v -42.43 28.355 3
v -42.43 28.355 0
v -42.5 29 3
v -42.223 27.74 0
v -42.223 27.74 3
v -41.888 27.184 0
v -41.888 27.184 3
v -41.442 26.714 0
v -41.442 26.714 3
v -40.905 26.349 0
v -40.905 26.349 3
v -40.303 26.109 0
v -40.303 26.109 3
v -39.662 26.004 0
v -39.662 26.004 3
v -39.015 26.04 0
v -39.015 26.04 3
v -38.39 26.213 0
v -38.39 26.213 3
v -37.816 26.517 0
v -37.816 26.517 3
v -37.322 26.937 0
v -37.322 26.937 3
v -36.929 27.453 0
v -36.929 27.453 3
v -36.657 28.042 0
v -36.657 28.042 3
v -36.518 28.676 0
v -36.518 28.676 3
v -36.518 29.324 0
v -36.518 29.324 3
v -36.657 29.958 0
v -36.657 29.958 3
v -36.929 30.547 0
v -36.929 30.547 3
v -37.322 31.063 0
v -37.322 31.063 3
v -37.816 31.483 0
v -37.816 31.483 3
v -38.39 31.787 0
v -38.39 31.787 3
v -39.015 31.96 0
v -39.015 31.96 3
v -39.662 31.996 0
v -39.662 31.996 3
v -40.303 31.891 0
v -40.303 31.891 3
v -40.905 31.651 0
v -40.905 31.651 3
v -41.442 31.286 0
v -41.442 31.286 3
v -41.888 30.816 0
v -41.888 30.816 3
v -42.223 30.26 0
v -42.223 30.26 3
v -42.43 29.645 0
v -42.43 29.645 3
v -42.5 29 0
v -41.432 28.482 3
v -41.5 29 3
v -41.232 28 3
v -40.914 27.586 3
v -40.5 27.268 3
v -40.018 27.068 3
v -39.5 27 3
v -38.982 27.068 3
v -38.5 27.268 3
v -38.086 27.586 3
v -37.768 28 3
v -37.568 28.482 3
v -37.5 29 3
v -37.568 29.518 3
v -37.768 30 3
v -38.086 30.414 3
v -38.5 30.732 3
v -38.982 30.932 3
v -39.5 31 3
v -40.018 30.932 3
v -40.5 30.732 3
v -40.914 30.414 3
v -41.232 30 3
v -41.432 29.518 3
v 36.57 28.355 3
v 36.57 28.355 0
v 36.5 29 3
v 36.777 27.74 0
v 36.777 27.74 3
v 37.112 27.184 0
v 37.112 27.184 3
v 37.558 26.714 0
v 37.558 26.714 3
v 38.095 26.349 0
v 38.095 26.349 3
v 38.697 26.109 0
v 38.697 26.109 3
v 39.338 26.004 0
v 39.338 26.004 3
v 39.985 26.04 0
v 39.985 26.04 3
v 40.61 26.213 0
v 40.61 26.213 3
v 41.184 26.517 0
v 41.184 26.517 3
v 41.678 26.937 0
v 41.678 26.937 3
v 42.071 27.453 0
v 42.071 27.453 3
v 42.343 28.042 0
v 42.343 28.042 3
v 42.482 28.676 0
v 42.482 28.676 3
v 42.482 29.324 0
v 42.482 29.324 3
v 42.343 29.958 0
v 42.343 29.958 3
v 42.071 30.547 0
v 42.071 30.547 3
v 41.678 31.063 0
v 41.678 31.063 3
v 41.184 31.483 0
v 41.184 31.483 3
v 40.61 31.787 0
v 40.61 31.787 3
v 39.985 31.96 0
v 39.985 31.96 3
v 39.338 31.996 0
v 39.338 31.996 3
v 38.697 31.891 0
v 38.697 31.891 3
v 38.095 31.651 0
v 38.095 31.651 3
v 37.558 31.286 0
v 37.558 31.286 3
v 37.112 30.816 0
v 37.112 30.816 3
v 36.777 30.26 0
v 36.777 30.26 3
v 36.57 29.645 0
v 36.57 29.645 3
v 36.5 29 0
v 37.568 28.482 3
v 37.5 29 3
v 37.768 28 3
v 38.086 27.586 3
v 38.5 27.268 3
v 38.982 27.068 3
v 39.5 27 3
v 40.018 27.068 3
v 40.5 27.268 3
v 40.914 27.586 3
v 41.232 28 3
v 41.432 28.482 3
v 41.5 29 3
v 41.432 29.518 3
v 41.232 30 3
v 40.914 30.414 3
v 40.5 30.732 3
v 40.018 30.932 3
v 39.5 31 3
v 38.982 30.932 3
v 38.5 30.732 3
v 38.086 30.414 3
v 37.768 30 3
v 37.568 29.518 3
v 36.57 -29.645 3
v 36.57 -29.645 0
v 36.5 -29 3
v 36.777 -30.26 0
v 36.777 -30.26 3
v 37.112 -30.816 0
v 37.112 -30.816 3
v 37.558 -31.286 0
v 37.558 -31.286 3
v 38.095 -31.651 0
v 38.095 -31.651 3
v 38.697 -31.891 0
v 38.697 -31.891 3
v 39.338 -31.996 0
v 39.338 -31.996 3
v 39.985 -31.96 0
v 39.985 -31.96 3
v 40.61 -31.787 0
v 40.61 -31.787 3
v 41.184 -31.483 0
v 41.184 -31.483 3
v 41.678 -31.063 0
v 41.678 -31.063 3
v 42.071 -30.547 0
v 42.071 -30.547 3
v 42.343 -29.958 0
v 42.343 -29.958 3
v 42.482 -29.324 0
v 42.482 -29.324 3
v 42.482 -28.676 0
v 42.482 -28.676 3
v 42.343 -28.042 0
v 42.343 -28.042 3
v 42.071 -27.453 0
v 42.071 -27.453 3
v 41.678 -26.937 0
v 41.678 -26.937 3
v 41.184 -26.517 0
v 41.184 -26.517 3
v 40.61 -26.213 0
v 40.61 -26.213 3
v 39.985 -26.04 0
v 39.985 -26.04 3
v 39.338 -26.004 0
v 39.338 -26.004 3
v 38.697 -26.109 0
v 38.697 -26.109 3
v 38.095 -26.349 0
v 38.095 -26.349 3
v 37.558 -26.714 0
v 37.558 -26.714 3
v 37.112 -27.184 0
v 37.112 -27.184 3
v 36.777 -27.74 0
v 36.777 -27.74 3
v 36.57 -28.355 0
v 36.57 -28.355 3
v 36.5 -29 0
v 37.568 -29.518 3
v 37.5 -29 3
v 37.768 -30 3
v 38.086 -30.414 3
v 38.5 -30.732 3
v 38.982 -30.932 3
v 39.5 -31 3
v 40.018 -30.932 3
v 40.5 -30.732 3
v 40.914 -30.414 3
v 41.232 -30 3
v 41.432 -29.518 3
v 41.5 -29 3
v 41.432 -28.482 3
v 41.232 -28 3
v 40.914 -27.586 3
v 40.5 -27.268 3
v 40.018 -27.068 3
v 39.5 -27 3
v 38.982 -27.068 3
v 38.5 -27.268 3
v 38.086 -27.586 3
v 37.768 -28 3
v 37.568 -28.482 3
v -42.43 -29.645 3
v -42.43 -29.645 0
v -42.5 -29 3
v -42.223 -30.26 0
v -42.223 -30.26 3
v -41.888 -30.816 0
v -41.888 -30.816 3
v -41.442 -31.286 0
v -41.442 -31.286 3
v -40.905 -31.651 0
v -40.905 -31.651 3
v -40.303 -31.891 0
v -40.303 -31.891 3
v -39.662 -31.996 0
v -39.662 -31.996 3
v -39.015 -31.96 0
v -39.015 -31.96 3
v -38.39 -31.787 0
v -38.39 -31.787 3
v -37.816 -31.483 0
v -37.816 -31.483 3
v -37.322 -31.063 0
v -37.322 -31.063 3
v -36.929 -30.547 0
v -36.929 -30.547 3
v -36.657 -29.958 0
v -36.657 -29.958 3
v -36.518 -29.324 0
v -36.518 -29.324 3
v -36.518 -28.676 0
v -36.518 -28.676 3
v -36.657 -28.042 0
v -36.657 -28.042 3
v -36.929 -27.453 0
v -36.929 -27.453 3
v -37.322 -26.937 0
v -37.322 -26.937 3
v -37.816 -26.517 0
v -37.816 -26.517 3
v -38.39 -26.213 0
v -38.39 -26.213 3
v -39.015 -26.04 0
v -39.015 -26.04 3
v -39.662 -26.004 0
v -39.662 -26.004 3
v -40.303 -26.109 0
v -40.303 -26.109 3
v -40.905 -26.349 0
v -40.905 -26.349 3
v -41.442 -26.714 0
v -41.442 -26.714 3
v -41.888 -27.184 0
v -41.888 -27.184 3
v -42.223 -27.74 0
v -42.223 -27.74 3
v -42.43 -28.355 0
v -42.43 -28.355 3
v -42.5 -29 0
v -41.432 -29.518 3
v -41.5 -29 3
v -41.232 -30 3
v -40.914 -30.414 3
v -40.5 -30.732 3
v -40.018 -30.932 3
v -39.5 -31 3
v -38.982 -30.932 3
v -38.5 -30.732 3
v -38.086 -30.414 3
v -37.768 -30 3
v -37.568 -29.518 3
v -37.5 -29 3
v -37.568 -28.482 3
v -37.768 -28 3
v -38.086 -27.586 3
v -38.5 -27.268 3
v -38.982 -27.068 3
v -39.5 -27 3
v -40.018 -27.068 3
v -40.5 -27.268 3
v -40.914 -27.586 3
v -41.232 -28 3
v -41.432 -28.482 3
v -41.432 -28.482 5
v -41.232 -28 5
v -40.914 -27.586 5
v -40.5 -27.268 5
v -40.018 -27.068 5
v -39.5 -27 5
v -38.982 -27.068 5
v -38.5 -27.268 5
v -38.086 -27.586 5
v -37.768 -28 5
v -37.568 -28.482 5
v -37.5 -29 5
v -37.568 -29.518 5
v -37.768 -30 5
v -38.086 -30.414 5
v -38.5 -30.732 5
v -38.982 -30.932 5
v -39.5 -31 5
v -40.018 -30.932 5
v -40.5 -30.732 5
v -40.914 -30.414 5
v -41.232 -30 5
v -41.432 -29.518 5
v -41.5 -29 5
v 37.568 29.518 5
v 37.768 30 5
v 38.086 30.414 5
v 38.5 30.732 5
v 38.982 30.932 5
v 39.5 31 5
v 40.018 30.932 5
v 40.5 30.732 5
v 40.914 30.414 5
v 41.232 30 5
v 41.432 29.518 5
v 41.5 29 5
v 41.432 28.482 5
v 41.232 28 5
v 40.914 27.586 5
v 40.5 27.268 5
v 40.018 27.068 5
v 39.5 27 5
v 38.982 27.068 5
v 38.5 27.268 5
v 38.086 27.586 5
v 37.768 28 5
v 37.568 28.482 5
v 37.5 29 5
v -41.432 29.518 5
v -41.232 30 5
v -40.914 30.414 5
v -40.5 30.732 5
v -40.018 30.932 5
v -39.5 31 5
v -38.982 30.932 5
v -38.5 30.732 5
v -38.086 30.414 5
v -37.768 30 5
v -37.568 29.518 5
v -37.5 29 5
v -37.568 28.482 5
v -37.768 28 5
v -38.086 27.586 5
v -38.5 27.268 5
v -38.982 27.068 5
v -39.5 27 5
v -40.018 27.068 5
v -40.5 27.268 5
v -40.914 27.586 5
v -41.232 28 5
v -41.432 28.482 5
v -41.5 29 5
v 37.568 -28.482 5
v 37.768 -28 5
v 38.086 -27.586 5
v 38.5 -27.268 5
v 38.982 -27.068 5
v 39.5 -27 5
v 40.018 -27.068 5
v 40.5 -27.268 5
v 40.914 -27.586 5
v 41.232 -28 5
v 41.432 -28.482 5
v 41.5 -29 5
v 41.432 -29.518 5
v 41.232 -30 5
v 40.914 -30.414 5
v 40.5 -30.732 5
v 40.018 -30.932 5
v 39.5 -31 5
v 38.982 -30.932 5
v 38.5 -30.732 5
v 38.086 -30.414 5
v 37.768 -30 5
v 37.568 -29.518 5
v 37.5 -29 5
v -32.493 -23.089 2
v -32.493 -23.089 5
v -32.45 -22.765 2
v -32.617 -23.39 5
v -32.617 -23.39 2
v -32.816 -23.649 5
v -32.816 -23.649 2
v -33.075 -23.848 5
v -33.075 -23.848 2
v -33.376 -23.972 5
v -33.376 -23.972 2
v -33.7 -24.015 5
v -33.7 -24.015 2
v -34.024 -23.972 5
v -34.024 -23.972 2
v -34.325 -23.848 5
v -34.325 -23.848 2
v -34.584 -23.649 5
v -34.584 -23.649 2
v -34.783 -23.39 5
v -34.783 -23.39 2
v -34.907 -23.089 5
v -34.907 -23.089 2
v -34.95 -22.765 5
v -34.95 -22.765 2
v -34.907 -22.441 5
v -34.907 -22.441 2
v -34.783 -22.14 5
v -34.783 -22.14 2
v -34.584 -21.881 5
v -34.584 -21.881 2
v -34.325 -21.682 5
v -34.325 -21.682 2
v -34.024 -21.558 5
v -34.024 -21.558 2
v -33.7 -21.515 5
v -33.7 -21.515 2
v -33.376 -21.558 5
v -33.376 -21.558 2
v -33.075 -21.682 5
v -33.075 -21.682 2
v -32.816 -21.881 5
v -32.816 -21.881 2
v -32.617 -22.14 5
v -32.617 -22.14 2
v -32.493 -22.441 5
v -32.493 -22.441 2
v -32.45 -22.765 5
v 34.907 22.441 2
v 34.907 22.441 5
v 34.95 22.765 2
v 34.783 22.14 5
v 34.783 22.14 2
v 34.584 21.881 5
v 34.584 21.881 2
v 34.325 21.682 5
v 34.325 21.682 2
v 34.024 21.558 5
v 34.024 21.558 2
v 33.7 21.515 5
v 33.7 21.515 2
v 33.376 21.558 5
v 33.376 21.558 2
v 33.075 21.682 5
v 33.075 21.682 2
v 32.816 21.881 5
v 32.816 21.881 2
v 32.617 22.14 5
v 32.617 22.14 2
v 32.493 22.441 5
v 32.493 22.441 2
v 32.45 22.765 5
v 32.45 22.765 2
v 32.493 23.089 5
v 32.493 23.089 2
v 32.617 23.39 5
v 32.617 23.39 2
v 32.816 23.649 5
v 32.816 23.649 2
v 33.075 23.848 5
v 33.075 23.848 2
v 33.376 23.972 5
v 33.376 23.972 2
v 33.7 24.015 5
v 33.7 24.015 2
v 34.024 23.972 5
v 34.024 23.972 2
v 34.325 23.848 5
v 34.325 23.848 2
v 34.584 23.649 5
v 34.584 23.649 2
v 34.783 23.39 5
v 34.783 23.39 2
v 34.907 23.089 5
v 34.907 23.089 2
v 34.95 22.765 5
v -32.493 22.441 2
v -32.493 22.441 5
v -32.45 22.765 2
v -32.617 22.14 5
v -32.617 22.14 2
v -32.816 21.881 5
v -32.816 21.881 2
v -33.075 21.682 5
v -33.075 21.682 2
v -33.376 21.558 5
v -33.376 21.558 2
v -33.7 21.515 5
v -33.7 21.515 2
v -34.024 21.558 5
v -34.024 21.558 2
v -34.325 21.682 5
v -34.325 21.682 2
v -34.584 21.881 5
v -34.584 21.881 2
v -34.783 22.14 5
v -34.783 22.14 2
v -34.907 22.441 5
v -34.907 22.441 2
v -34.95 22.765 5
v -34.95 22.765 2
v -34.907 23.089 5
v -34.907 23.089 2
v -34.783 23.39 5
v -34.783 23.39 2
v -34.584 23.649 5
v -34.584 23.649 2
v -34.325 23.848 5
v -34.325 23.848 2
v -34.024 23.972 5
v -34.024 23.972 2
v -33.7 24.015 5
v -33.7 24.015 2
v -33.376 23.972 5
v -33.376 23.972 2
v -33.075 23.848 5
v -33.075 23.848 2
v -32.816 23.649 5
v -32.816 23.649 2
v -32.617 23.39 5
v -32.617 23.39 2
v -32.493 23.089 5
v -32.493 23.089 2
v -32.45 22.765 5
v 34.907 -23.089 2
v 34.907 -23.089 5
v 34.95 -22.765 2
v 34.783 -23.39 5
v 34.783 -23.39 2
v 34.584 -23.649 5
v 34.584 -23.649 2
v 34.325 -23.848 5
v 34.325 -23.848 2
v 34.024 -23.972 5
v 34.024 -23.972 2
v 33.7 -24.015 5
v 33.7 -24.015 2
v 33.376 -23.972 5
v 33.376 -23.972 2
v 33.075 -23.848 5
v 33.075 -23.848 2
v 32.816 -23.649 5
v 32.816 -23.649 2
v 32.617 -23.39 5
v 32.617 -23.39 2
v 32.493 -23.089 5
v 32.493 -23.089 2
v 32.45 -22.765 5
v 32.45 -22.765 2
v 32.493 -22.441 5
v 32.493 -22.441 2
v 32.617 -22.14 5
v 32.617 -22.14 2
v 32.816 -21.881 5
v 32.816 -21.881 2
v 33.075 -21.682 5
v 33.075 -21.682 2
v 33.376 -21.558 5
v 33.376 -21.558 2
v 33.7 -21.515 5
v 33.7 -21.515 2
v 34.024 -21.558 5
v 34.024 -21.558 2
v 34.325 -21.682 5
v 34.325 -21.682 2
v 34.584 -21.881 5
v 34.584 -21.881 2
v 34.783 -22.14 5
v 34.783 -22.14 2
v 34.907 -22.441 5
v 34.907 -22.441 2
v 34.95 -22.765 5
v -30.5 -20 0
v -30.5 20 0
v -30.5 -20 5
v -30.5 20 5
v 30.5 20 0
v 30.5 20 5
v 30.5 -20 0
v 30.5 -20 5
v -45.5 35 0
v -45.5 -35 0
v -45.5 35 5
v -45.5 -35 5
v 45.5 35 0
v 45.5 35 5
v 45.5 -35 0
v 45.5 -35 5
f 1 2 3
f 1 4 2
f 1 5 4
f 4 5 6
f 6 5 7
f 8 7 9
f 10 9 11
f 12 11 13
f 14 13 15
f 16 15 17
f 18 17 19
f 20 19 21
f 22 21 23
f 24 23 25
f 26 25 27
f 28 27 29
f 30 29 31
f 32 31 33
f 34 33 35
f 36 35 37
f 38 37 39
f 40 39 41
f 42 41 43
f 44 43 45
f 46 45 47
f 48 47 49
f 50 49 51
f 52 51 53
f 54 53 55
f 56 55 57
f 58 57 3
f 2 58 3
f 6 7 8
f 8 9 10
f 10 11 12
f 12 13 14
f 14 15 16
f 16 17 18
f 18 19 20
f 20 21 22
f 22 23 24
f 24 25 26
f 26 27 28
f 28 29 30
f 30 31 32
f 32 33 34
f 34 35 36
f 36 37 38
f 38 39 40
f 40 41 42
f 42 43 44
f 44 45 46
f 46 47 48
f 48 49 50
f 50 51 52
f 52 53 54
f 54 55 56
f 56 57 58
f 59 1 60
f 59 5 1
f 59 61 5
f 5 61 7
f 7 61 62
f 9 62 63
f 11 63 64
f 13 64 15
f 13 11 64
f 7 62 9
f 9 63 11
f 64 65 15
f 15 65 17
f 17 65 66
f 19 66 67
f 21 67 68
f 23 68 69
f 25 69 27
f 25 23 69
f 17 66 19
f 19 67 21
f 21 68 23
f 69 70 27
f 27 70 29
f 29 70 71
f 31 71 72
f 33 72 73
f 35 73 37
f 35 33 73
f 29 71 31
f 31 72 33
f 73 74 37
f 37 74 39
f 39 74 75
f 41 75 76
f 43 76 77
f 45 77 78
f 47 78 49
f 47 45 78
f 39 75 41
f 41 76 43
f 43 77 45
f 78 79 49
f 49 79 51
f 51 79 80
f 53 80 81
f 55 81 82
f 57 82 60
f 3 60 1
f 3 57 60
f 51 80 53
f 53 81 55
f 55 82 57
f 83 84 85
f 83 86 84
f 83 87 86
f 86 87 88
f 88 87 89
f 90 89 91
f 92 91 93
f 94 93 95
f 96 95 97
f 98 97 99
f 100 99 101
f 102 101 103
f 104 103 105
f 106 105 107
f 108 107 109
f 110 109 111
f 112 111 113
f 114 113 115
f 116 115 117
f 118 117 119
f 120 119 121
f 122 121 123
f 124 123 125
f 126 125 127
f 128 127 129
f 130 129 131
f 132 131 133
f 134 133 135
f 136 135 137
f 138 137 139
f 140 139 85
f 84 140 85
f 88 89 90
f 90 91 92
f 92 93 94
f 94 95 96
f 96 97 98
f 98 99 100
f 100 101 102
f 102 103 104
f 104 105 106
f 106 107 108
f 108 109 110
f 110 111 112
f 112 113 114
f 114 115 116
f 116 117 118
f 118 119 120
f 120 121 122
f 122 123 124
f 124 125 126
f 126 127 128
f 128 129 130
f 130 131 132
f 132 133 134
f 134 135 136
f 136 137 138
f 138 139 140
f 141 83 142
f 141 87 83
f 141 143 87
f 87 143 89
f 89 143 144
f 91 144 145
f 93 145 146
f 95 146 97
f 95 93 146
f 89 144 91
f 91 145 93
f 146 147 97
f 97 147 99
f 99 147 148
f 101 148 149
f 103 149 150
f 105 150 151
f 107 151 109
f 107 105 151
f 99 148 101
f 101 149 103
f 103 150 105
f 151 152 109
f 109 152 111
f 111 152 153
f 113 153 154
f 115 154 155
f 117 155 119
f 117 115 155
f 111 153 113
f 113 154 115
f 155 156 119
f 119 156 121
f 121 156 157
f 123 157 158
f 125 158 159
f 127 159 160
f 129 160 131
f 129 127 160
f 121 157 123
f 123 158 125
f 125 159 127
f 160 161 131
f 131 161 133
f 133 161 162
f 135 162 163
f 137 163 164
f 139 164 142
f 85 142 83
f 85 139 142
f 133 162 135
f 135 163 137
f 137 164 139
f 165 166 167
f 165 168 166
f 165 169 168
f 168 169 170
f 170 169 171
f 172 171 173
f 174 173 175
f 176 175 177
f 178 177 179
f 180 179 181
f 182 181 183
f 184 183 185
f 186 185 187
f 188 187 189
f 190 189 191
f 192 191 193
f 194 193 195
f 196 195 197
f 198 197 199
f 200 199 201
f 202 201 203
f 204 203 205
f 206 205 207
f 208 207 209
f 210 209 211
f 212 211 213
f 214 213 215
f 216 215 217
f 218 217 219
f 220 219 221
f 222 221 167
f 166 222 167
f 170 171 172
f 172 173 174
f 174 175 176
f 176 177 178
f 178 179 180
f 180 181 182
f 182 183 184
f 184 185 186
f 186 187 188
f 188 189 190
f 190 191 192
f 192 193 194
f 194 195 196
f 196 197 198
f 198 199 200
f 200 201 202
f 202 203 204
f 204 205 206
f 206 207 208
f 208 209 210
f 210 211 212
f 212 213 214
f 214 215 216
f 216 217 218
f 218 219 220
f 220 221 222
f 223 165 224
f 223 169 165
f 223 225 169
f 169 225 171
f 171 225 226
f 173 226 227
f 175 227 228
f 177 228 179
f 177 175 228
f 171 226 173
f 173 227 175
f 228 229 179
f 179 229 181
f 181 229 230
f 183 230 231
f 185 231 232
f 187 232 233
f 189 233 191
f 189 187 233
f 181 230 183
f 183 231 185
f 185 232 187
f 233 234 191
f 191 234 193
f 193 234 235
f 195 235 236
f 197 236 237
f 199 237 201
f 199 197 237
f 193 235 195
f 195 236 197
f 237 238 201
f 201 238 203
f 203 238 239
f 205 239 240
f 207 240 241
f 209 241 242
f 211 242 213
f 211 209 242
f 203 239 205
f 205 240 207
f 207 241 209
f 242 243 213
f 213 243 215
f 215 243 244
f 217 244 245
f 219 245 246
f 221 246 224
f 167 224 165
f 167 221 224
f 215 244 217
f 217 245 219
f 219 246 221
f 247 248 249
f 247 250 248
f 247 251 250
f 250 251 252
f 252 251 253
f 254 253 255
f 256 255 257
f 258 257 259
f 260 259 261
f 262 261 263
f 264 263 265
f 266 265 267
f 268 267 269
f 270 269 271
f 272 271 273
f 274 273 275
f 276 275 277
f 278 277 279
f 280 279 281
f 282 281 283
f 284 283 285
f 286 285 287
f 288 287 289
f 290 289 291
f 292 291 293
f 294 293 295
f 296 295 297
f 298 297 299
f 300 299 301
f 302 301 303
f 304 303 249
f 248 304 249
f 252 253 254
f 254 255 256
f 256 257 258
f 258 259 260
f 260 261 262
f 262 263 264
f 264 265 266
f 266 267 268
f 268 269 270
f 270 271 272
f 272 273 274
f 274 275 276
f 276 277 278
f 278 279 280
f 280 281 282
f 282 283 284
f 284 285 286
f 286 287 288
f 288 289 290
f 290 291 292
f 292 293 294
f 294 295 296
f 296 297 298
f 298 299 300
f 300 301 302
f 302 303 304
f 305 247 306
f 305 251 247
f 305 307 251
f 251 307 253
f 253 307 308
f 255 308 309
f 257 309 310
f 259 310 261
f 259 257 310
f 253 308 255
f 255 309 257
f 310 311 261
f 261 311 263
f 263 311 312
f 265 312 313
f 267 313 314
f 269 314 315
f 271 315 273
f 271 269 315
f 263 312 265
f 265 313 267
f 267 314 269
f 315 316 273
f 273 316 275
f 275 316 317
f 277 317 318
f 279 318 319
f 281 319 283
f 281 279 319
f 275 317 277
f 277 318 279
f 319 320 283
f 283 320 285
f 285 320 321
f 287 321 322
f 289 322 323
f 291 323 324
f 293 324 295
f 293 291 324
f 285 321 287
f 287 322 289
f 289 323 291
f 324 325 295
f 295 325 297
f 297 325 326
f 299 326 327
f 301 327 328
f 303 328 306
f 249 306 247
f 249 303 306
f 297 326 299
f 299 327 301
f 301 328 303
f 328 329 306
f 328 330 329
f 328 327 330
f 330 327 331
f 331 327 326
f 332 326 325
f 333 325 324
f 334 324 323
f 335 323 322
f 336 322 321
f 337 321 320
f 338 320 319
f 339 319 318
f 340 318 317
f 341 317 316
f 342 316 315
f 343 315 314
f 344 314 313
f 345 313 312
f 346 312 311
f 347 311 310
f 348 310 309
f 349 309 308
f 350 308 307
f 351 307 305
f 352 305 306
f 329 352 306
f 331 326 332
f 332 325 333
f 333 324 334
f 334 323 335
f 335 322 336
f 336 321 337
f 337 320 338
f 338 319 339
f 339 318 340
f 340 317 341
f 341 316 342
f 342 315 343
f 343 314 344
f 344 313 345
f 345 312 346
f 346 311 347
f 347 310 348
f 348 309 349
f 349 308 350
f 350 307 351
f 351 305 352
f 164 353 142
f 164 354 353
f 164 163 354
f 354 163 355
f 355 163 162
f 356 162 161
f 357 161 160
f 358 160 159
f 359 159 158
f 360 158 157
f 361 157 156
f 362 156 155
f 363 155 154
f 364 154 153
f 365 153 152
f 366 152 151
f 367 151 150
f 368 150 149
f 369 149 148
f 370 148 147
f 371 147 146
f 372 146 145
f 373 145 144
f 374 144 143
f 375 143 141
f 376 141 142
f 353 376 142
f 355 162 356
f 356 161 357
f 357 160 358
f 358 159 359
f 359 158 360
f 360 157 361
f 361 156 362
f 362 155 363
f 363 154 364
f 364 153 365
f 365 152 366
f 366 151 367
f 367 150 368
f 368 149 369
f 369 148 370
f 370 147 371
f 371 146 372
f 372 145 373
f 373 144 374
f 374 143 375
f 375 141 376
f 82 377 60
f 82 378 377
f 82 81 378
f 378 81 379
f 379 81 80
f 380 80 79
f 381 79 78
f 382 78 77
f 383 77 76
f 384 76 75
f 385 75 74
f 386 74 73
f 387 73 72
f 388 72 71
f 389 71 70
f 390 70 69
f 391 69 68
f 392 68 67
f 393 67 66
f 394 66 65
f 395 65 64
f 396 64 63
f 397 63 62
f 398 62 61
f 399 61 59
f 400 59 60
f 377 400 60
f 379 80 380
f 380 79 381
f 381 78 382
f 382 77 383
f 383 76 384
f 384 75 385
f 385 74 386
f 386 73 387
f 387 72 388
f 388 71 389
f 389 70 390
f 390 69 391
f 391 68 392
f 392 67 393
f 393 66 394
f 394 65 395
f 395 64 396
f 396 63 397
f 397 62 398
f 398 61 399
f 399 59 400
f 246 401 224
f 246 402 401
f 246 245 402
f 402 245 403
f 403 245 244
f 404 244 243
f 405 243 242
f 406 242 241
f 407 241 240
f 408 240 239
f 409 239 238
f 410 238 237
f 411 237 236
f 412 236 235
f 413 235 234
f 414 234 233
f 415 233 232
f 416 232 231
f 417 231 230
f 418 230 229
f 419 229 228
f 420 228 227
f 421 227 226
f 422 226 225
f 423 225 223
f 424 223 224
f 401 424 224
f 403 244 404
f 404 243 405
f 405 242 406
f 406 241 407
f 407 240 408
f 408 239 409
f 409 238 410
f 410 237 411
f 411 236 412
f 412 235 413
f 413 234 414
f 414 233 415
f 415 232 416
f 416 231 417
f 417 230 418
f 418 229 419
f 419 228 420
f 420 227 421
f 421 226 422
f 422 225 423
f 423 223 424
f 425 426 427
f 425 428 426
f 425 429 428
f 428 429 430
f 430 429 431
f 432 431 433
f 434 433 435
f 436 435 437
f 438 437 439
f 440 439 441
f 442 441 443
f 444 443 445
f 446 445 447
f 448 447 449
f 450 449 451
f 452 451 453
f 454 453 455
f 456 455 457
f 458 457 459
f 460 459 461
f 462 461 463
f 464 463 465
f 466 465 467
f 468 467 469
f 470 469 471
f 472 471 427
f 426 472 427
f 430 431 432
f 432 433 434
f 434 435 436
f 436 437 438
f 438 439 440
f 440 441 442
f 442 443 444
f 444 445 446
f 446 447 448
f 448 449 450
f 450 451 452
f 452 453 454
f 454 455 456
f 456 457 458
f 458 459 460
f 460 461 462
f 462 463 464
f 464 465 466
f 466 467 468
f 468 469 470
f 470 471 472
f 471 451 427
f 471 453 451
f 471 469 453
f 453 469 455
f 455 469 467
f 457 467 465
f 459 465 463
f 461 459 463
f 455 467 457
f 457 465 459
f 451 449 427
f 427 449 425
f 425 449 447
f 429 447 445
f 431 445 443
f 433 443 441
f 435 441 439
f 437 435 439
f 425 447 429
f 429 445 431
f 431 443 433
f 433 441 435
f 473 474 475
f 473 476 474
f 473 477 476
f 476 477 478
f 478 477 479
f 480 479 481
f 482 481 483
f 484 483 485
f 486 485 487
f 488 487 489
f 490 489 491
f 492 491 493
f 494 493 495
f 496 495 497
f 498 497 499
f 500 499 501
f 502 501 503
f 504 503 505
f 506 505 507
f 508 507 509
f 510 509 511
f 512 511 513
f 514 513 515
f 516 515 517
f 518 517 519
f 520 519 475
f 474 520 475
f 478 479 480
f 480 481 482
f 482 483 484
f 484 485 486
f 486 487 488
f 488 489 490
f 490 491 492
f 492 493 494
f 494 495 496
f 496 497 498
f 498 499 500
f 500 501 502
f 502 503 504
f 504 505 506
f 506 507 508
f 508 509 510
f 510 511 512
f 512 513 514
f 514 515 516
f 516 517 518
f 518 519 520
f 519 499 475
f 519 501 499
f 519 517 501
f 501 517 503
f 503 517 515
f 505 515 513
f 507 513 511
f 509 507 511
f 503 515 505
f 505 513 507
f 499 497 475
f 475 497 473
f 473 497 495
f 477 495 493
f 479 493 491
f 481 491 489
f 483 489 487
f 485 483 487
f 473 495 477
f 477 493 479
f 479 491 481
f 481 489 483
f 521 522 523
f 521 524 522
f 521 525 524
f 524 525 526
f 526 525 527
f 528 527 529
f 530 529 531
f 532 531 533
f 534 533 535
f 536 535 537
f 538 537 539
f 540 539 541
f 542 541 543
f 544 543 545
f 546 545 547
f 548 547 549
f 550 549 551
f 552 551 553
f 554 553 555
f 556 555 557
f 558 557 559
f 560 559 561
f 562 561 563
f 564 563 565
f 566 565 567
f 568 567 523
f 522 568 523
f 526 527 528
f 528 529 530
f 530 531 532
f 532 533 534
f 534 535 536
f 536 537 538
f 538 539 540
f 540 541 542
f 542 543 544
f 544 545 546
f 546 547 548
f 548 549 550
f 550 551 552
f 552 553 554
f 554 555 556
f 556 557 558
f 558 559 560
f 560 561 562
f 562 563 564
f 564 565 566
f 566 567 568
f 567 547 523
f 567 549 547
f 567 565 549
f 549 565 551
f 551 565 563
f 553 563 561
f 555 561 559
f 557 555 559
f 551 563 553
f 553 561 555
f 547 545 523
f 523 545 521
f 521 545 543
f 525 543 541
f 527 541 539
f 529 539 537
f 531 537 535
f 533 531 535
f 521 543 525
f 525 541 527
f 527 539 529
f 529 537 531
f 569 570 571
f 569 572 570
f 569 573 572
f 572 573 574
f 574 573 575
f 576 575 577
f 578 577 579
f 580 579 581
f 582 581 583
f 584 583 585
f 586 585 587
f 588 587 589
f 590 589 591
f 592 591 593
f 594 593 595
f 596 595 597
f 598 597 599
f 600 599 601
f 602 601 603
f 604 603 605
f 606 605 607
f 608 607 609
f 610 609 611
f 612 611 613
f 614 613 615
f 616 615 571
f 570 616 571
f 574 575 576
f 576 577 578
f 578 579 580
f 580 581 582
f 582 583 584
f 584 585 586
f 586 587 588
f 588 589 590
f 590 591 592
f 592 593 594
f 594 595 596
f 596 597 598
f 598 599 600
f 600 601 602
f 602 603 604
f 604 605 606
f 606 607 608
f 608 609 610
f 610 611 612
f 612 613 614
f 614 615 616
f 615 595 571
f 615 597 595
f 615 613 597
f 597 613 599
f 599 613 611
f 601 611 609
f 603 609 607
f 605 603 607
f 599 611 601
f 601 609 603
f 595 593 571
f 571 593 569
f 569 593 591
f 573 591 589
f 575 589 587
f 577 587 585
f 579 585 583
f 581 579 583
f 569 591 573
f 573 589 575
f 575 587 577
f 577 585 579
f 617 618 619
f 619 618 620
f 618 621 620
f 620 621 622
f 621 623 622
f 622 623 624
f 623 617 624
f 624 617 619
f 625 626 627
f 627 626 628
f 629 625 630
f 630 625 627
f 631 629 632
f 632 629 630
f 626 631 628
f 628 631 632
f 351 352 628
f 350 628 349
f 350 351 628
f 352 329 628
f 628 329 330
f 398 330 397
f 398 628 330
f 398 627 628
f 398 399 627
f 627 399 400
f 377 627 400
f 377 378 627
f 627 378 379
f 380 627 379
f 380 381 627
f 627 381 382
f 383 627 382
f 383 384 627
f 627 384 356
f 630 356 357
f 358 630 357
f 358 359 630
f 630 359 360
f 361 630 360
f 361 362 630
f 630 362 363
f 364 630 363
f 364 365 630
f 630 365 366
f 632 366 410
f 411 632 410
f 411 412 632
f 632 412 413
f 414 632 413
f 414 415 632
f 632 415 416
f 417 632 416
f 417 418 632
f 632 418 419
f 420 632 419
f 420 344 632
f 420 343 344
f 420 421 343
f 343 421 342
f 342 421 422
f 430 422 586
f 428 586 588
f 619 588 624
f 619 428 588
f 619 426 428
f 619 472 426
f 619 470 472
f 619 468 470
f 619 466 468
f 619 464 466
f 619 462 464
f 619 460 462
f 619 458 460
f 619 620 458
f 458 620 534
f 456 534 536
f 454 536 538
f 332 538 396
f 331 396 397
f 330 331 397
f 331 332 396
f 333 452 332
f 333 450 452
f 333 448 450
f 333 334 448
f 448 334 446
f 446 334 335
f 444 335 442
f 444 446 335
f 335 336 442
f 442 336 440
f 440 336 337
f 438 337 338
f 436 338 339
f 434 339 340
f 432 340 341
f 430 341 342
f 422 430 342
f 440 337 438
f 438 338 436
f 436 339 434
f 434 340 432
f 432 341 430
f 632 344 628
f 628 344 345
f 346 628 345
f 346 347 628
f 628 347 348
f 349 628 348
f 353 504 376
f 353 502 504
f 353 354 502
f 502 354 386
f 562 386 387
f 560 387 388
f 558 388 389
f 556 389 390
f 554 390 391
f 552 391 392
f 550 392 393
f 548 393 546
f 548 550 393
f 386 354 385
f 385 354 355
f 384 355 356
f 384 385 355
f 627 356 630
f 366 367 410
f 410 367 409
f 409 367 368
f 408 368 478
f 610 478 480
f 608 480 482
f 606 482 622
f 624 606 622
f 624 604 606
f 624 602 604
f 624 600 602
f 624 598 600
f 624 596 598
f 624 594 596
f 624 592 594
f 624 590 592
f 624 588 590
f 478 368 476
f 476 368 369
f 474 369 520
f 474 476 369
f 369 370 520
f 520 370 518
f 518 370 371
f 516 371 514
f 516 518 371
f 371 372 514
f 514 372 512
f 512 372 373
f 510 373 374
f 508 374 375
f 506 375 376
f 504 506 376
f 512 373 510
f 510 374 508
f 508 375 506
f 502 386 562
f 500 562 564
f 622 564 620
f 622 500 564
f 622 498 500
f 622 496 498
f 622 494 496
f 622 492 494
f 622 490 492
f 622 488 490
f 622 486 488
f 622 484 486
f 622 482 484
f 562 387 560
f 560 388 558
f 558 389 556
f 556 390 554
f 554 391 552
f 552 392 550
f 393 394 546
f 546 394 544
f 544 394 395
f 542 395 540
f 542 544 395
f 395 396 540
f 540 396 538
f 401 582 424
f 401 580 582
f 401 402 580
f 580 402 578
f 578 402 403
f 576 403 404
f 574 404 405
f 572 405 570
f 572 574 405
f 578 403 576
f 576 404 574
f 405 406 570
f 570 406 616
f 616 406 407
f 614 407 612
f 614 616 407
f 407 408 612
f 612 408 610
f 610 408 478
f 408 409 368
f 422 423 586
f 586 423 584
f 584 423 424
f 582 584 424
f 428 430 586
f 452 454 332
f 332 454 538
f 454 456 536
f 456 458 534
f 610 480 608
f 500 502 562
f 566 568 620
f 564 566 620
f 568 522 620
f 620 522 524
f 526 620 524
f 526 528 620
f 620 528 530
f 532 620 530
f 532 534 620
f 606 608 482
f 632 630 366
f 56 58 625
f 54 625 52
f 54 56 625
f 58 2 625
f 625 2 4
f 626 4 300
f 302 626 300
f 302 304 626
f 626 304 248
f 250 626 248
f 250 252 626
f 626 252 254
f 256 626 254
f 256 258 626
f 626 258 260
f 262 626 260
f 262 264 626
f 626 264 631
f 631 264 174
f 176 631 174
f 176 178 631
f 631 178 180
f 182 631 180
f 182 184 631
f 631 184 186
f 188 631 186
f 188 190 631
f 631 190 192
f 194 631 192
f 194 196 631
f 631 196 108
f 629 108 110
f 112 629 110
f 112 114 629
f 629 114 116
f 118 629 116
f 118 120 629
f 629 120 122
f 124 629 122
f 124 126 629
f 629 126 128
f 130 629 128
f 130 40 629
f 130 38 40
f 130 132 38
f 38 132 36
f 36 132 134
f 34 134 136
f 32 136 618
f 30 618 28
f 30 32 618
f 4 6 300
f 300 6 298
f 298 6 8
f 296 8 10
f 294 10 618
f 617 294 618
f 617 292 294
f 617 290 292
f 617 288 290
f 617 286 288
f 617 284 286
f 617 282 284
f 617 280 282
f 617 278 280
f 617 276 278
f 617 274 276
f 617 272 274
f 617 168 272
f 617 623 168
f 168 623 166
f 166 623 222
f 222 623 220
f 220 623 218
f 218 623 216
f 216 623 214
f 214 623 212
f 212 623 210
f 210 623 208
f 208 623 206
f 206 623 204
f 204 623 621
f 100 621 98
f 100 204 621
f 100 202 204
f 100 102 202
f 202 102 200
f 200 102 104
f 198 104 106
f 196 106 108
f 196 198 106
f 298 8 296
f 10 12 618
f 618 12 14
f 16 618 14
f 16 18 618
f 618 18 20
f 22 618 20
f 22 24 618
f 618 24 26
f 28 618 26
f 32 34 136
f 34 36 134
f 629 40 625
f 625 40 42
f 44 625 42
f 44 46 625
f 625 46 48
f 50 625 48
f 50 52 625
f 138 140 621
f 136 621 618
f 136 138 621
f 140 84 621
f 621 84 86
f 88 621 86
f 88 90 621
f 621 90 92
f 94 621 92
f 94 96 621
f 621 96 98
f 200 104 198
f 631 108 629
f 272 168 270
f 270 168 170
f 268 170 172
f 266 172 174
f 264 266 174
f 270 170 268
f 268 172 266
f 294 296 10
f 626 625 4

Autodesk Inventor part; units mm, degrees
ref_plane "YZ Plane" through (0, 0, 0) normal (1, 0, 0) x (0, 1, 0)
ref_plane "XZ Plane" through (0, 0, 0) normal (0, 1, 0) x (-1, 0, 0)
ref_plane "XY Plane" through (0, 0, 0) normal (0, 0, 1) x (1, 0, 0)
sketch "Sketch1" plane through (0, 0, 0) normal (0, 0, 1) x (1, 0, 0)
  line L0 (-30.5, -20) -> (30.5, -20)
  line L1 (30.5, -20) -> (30.5, 20)
  line L2 (30.5, 20) -> (-30.5, 20)
  line L3 (-30.5, 20) -> (-30.5, -20)
  line L4 (-30.5, -20) -> (30.5, 20) construction
  line L5 (30.5, -20) -> (-30.5, 20) construction
  line L6 (-45.5, -35) -> (45.5, -35)
  line L7 (45.5, -35) -> (45.5, 35)
  line L8 (45.5, 35) -> (-45.5, 35)
  line L9 (-45.5, 35) -> (-45.5, -35)
  line L10 (-45.5, -35) -> (45.5, 35) construction
  line L11 (45.5, -35) -> (-45.5, 35) construction
  point P0 (0, 0)
  dimension "d0" = 61
  dimension "d1" = 40
  dimension "d2" = 15
  dimension "d3" = 15
extrude "Rim" add sketch "Sketch1" along normal blind 5
sketch "Sketch2" plane through (0, 0, 5) normal (0, 0, 1) x (1, 0, 0)
  line L0 (-33.7, -22.765) -> (33.7, -22.765) construction
  line L1 (33.7, -22.765) -> (33.7, 22.765) construction
  line L2 (33.7, 22.765) -> (-33.7, 22.765) construction
  line L3 (-33.7, 22.765) -> (-33.7, -22.765) construction
  line L4 (-33.7, -22.765) -> (33.7, 22.765) construction
  line L5 (33.7, -22.765) -> (-33.7, 22.765) construction
  circle A0 centre (33.7, 22.765) radius 1.25
  line L6 (0, 22.765) -> (0, -22.765) construction
  line L7 (-30.5, -20) -> (-30.5, 20) projected
  line L8 (-30.5, 0) -> (33.7, 0) construction
  circle A1 centre (-33.7, 22.765) radius 1.25
  circle A2 centre (33.7, -22.765) radius 1.25
  circle A3 centre (-33.7, -22.765) radius 1.25
  point P0 (0, 0)
  dimension "d6" = 67.4
  dimension "d7" = 45.53
  dimension "d8" = 2.5
extrude "Pegs" cut sketch "Sketch2" against normal blind 3
sketch "Sketch4" plane through (0, 0, 0) normal (0, 0, -1) x (-1, 0, 0)
  circle A0 centre (-39.5, 29) radius 2 projected
  circle A1 centre (39.5, 29) radius 2 projected
  circle A2 centre (39.5, -29) radius 2 projected
  circle A3 centre (-39.5, -29) radius 2 projected
  point P0 (0, 0)
extrude "Bolt Holes" cut sketch "Sketch4" against normal up to next
sketch "For Construction" plane through (0, 0, 5) normal (0, 0, 1) x (1, 0, 0)
  circle A0 centre (33.7, -22.765) radius 1.25 projected
  circle A1 centre (39.5, -29) radius 2 projected
  point P0 (0, 0)
  point P1 (34.95, -22.765)
  point P2 (37.901, -27.7986)
  dimension "d19" = 5.2656
ref_plane "Work Plane2" through (-30.5, 0, 0) normal (0, 1, 0) x (1, 0, 0)
sketch "Sketch13" plane through (0, 0, 0) normal (0, 0, -1) x (-1, 0, 0)
  circle A0 centre (-39.5, -29) radius 3
  circle A1 centre (-39.5, -29) radius 2 projected
  line L0 (45.5, -35) -> (-45.5, -35) projected
  line L1 (0, -35) -> (0, -20) construction
  line L2 (-30.5, -20) -> (30.5, -20) projected
  line L3 (-27.3467, 0) -> (-45.5, 0) construction
  line L4 (-45.5, -35) -> (-45.5, 35) projected
  line L5 (-45.5, -35) -> (-45.5, 35) projected
  circle A2 centre (-39.5, 29) radius 3
  circle A3 centre (39.5, -29) radius 3
  circle A4 centre (39.5, 29) radius 3
  point P0 (0, 0)
  dimension "d42" = 6
extrude "Bolt heads" cut sketch "Sketch13" against normal blind 3
properties part number "Joystickboard Holder"
